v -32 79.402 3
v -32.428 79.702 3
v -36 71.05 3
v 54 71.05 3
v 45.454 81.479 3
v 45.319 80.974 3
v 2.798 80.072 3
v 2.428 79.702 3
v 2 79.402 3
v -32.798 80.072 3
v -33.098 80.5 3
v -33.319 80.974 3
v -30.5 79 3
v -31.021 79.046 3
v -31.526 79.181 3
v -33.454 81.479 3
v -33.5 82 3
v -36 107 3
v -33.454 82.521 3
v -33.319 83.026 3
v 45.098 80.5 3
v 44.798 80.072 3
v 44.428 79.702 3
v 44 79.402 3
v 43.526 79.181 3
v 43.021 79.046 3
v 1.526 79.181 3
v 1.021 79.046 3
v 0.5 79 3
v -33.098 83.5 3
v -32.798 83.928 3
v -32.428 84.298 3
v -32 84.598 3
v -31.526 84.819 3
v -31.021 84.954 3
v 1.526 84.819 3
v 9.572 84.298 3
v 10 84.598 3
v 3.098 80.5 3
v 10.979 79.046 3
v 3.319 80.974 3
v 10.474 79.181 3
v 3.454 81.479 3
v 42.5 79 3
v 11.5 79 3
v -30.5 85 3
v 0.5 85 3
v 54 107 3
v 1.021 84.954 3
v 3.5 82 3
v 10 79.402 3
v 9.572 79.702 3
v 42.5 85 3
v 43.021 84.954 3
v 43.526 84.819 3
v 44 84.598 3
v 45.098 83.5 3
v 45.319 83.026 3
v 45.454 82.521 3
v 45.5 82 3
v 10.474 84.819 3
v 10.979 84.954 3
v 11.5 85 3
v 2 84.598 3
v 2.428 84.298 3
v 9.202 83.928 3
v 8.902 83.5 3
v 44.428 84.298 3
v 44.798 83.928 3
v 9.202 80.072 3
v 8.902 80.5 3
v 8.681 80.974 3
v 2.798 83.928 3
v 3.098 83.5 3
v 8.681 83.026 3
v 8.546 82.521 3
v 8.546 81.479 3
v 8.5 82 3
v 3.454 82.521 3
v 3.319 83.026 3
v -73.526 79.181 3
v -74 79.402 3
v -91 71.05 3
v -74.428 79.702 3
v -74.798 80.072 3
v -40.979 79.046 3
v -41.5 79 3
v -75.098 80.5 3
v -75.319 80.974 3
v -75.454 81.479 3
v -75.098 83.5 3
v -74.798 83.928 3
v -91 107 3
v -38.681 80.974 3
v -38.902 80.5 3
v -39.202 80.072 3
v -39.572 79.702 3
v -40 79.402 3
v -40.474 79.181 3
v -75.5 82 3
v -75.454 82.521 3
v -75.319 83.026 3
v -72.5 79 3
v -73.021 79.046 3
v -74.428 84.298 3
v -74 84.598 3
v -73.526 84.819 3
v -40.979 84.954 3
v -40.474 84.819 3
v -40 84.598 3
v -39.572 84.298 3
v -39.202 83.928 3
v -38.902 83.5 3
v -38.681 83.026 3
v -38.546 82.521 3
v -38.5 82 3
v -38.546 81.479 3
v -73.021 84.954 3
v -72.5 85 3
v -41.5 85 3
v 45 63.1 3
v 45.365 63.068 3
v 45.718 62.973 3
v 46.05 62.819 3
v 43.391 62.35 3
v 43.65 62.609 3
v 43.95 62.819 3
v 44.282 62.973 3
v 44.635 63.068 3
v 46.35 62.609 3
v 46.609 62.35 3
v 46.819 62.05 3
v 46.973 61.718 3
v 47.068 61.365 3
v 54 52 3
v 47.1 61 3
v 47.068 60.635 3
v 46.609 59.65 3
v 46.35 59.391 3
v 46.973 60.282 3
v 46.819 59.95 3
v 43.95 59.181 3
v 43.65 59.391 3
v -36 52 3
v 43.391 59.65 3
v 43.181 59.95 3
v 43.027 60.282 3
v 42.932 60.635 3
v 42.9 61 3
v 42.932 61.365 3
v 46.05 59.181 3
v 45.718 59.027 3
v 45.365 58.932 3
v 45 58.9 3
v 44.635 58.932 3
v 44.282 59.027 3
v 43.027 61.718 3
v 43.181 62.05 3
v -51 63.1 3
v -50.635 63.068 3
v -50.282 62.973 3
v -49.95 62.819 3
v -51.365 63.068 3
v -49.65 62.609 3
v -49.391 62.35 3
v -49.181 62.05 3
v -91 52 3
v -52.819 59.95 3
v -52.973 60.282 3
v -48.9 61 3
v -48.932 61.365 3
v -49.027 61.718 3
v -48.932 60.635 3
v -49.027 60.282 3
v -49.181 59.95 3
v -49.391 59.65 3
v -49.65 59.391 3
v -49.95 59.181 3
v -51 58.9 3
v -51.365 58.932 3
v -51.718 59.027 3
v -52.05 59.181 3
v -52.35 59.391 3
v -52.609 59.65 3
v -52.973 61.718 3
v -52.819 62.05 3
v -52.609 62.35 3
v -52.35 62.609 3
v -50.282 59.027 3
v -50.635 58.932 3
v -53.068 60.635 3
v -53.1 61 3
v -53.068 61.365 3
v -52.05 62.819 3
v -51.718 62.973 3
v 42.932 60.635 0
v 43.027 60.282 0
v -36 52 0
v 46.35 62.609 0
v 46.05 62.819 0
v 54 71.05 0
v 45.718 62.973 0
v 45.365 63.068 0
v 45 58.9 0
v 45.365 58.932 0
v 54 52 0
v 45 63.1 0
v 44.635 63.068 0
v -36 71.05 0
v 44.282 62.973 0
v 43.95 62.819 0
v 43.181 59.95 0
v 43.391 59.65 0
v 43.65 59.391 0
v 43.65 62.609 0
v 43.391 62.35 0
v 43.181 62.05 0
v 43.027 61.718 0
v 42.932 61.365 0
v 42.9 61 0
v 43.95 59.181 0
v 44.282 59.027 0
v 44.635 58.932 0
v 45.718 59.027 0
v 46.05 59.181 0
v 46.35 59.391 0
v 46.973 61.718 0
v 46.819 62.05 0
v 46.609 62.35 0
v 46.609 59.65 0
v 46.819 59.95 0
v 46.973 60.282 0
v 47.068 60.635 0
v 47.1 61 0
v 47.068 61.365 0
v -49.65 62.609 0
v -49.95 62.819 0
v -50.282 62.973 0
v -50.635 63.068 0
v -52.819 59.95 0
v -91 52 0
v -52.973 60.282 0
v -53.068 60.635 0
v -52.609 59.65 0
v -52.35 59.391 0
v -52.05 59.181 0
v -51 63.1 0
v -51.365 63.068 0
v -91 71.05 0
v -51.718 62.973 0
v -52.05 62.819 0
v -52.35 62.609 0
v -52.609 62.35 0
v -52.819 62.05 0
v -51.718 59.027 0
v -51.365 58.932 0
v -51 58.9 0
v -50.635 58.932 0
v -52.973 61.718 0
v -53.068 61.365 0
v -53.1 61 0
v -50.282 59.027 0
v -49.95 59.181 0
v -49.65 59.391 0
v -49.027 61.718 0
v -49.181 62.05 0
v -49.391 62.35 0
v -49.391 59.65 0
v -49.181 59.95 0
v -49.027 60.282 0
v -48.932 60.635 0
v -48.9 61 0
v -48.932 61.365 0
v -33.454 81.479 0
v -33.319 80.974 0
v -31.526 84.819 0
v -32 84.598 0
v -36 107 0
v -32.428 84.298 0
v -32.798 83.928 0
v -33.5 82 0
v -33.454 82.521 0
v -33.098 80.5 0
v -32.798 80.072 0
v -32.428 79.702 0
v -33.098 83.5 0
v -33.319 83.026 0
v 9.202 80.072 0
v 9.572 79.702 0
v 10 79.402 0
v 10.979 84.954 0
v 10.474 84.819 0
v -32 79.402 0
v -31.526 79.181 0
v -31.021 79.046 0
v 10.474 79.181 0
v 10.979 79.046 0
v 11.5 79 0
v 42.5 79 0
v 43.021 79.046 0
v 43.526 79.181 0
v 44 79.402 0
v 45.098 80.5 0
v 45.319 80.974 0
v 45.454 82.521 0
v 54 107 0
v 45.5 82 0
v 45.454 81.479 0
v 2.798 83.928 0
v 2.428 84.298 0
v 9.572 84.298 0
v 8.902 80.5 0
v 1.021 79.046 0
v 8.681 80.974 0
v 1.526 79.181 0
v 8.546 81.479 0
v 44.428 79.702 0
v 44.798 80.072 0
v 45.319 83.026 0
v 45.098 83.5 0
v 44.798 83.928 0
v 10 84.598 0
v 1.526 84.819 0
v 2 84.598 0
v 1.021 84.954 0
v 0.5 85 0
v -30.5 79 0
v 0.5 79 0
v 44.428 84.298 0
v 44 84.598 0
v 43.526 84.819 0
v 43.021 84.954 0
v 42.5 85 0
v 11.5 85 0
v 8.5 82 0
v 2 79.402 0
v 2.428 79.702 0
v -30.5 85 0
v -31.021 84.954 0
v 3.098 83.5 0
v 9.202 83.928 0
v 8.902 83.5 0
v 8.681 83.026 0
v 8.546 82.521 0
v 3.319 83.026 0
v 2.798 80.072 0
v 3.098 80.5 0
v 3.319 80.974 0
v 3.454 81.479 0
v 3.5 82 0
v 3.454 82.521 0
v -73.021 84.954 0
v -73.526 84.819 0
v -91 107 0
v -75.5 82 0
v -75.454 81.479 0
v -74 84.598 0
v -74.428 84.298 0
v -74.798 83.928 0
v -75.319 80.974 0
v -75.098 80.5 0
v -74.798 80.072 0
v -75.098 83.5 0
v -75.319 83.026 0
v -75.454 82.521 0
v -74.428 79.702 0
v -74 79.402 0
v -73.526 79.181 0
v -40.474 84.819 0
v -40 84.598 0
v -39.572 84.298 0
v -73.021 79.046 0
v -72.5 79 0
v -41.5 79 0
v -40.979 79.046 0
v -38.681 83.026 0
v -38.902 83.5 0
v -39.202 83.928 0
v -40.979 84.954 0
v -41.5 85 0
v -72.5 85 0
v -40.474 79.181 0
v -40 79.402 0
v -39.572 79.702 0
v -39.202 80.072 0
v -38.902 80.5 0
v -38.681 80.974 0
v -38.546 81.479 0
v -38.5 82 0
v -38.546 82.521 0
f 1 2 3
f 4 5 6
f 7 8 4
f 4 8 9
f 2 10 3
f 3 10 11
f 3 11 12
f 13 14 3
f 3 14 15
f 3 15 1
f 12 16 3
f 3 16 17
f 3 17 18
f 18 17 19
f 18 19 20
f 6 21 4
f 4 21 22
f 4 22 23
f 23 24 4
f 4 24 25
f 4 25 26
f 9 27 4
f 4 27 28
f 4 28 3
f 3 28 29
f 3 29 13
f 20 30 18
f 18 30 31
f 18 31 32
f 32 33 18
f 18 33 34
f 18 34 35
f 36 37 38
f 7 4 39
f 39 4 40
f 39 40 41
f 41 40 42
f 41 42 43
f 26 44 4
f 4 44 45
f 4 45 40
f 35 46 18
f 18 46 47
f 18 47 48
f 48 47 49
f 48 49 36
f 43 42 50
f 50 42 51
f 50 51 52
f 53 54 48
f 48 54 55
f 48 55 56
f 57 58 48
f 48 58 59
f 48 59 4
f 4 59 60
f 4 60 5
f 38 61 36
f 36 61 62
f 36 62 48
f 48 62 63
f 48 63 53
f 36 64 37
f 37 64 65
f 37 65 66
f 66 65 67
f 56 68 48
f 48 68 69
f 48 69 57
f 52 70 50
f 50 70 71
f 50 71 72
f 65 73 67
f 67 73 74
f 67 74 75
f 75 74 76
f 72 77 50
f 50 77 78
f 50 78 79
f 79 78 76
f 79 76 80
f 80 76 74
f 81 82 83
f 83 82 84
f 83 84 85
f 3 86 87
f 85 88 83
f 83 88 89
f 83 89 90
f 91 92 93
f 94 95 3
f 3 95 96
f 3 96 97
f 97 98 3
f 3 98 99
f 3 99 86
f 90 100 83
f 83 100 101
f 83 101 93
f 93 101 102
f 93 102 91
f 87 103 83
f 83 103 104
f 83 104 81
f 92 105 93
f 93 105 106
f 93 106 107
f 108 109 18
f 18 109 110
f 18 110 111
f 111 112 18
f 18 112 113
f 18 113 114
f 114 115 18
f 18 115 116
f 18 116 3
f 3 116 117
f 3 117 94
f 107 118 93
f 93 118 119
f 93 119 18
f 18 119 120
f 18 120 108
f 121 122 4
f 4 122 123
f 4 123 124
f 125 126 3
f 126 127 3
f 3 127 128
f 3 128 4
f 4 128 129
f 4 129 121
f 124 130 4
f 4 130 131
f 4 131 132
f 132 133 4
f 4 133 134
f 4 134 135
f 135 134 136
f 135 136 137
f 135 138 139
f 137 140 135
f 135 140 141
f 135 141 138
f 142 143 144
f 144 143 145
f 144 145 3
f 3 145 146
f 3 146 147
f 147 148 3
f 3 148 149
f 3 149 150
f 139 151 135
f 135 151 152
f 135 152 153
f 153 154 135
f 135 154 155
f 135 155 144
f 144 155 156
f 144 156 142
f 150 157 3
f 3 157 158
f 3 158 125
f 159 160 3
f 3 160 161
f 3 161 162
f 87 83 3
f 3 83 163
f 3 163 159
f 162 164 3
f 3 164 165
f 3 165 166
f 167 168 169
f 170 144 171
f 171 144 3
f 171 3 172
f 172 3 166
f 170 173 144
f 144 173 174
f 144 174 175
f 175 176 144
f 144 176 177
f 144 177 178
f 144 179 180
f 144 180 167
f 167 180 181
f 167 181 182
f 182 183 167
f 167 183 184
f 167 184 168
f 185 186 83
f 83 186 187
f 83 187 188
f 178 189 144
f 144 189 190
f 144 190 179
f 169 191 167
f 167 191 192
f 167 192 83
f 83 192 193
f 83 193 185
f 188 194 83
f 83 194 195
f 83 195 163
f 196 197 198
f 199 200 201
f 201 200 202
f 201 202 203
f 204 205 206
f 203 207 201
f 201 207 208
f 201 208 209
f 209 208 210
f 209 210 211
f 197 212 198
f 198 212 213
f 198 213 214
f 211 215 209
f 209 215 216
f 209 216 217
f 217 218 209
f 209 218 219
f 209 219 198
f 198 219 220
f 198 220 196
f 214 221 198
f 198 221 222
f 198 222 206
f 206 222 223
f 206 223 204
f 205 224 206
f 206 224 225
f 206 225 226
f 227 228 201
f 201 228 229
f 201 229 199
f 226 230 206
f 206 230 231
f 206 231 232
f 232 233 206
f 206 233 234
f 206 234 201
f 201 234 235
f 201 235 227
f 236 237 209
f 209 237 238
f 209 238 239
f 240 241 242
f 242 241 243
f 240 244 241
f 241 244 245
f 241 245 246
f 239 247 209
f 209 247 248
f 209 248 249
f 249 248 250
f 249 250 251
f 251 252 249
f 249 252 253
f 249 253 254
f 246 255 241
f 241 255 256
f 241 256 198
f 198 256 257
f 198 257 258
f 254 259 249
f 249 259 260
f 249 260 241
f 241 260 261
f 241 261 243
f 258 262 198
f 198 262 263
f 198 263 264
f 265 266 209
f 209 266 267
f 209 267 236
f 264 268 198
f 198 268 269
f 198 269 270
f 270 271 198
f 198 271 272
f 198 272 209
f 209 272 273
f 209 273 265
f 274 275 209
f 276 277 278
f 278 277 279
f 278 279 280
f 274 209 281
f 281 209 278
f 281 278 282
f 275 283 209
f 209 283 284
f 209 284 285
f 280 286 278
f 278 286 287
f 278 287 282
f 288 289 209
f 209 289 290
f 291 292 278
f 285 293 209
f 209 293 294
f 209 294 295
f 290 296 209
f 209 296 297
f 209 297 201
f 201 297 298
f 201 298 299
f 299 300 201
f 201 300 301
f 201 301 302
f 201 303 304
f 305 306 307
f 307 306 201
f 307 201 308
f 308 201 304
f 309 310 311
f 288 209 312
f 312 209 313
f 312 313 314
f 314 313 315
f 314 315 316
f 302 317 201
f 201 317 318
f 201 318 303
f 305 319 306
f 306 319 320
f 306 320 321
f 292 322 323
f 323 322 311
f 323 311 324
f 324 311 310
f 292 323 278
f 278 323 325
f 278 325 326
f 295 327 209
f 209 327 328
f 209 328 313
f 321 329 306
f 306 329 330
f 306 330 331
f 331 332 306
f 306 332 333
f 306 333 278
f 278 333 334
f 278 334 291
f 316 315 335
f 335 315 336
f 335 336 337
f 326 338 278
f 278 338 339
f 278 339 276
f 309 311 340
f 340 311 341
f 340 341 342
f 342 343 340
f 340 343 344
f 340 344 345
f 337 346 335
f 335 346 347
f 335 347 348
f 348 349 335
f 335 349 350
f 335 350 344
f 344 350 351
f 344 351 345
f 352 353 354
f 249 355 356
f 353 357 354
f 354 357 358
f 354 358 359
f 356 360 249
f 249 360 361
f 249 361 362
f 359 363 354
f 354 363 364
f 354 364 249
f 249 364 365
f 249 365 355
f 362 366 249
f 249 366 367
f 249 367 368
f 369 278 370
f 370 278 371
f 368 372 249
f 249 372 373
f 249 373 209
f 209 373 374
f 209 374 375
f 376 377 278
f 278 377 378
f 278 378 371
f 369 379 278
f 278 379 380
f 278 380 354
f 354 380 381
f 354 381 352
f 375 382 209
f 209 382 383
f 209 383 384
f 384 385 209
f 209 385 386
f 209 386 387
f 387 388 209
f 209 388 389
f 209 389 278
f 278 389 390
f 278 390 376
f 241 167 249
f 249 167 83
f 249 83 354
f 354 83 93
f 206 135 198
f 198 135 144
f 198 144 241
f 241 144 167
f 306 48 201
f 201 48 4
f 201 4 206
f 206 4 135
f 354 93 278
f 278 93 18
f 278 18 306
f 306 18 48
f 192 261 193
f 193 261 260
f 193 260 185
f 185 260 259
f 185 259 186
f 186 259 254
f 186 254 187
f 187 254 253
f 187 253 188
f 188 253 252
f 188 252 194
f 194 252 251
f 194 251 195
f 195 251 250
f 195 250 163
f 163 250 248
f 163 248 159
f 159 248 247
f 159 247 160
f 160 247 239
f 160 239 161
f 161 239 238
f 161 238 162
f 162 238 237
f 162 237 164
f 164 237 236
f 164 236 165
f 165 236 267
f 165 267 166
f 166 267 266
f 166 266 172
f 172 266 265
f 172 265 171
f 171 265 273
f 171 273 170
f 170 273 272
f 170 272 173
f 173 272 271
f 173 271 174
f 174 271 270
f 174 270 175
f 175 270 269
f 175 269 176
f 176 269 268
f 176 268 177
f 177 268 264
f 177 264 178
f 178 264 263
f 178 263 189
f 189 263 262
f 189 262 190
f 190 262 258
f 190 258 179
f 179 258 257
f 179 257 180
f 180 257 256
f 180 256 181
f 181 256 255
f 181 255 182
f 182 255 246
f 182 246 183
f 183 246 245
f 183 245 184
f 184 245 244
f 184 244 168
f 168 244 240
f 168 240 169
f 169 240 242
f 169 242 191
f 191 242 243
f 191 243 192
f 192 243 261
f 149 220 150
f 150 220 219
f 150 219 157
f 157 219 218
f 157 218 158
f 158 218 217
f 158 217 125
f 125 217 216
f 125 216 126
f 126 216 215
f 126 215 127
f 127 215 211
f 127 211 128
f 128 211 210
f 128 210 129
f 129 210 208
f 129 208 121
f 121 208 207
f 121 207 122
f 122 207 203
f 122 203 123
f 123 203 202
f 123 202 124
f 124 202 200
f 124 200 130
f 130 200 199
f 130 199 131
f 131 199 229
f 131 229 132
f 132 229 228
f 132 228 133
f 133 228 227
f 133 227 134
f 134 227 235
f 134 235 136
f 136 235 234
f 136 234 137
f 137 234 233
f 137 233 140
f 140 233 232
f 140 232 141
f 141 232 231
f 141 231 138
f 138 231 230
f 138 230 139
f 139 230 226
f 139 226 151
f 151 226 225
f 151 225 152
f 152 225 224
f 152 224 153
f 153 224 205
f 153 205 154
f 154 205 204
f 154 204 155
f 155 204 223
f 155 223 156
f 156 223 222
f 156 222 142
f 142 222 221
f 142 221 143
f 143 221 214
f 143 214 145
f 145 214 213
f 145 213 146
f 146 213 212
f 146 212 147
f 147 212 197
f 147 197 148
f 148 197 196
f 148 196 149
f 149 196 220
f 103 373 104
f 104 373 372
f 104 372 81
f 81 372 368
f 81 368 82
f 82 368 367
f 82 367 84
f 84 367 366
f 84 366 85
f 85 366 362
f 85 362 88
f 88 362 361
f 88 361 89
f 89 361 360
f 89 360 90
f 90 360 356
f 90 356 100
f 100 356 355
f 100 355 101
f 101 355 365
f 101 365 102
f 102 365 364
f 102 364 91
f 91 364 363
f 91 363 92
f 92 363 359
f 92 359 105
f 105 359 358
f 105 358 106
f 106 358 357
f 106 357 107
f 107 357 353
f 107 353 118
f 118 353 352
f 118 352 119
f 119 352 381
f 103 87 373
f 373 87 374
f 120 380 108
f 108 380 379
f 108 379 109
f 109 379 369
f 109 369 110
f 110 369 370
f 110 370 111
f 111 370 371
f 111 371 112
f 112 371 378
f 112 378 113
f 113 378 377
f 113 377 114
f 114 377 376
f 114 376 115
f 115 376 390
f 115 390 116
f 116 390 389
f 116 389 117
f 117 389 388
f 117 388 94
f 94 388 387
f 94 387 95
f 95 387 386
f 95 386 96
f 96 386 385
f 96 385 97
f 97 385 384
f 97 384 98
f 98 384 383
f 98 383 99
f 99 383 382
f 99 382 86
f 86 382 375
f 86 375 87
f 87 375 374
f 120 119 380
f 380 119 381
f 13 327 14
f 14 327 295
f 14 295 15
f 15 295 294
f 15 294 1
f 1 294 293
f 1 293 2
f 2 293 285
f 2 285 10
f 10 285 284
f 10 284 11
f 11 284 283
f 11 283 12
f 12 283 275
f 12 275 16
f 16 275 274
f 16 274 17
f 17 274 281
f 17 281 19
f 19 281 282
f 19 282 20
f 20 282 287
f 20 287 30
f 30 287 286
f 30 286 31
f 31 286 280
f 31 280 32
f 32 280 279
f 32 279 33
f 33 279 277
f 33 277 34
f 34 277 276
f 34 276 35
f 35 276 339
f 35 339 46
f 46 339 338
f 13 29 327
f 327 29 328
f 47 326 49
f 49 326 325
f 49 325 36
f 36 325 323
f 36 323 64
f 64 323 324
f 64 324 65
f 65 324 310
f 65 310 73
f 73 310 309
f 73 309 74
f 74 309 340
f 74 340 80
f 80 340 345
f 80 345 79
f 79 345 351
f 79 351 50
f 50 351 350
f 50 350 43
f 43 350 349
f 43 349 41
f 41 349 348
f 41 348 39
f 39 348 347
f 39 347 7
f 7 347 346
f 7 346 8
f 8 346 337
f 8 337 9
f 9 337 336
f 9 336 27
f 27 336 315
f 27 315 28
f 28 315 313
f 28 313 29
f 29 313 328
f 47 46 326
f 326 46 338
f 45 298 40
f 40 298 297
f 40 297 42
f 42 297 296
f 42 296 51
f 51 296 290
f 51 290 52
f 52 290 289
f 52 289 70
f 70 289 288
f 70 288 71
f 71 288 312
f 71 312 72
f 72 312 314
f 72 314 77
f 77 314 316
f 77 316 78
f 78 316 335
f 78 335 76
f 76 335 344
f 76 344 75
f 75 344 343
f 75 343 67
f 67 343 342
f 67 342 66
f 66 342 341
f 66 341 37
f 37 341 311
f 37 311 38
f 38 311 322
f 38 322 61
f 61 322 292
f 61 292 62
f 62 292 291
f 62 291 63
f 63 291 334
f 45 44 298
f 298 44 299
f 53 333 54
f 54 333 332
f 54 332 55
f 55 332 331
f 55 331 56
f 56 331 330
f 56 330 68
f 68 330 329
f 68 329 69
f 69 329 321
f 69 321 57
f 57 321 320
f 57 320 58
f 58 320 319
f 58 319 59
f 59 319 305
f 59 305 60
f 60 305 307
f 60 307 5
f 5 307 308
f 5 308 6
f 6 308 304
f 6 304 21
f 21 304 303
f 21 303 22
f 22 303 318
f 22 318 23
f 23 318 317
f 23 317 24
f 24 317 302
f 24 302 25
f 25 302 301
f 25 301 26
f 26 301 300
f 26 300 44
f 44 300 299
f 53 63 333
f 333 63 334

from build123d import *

# Parameters (mm, degrees)
VENTED_LID_RISER_PROFILE_W = 145
VENTED_LID_RISER_PROFILE_H = 55
VENTED_LID_RISER_PROFILE_R = 2.1
VENTED_LID_RISER_DEPTH     = 3


with BuildPart() as part:
    # Vented lid riser profile → Vented lid riser (new body)
    with BuildSketch(Plane.XY):
        with Locations((-18.5, 79.5)):
            Rectangle(VENTED_LID_RISER_PROFILE_W, VENTED_LID_RISER_PROFILE_H)
        with Locations((-51, 61)):
            Circle(VENTED_LID_RISER_PROFILE_R, mode=Mode.SUBTRACT)
        with Locations((45, 61)):
            Circle(VENTED_LID_RISER_PROFILE_R, mode=Mode.SUBTRACT)
        with BuildLine():
            Line((-72.5, 79), (-41.5, 79))
            ThreePointArc((-41.5, 79), (-38.5, 82), (-41.5, 85))
            Line((-41.5, 85), (-72.5, 85))
            ThreePointArc((-72.5, 85), (-75.5, 82), (-72.5, 79))
        make_face(mode=Mode.SUBTRACT)
        with BuildLine():
            Line((-30.5, 79), (0.5, 79))
            ThreePointArc((0.5, 79), (3.5, 82), (0.5, 85))
            Line((0.5, 85), (-30.5, 85))
            ThreePointArc((-30.5, 85), (-33.5, 82), (-30.5, 79))
        make_face(mode=Mode.SUBTRACT)
        with BuildLine():
            Line((11.5, 79), (42.5, 79))
            ThreePointArc((42.5, 79), (45.5, 82), (42.5, 85))
            Line((42.5, 85), (11.5, 85))
            ThreePointArc((11.5, 85), (8.5, 82), (11.5, 79))
        make_face(mode=Mode.SUBTRACT)
    extrude(amount=VENTED_LID_RISER_DEPTH)


solid = part.part
